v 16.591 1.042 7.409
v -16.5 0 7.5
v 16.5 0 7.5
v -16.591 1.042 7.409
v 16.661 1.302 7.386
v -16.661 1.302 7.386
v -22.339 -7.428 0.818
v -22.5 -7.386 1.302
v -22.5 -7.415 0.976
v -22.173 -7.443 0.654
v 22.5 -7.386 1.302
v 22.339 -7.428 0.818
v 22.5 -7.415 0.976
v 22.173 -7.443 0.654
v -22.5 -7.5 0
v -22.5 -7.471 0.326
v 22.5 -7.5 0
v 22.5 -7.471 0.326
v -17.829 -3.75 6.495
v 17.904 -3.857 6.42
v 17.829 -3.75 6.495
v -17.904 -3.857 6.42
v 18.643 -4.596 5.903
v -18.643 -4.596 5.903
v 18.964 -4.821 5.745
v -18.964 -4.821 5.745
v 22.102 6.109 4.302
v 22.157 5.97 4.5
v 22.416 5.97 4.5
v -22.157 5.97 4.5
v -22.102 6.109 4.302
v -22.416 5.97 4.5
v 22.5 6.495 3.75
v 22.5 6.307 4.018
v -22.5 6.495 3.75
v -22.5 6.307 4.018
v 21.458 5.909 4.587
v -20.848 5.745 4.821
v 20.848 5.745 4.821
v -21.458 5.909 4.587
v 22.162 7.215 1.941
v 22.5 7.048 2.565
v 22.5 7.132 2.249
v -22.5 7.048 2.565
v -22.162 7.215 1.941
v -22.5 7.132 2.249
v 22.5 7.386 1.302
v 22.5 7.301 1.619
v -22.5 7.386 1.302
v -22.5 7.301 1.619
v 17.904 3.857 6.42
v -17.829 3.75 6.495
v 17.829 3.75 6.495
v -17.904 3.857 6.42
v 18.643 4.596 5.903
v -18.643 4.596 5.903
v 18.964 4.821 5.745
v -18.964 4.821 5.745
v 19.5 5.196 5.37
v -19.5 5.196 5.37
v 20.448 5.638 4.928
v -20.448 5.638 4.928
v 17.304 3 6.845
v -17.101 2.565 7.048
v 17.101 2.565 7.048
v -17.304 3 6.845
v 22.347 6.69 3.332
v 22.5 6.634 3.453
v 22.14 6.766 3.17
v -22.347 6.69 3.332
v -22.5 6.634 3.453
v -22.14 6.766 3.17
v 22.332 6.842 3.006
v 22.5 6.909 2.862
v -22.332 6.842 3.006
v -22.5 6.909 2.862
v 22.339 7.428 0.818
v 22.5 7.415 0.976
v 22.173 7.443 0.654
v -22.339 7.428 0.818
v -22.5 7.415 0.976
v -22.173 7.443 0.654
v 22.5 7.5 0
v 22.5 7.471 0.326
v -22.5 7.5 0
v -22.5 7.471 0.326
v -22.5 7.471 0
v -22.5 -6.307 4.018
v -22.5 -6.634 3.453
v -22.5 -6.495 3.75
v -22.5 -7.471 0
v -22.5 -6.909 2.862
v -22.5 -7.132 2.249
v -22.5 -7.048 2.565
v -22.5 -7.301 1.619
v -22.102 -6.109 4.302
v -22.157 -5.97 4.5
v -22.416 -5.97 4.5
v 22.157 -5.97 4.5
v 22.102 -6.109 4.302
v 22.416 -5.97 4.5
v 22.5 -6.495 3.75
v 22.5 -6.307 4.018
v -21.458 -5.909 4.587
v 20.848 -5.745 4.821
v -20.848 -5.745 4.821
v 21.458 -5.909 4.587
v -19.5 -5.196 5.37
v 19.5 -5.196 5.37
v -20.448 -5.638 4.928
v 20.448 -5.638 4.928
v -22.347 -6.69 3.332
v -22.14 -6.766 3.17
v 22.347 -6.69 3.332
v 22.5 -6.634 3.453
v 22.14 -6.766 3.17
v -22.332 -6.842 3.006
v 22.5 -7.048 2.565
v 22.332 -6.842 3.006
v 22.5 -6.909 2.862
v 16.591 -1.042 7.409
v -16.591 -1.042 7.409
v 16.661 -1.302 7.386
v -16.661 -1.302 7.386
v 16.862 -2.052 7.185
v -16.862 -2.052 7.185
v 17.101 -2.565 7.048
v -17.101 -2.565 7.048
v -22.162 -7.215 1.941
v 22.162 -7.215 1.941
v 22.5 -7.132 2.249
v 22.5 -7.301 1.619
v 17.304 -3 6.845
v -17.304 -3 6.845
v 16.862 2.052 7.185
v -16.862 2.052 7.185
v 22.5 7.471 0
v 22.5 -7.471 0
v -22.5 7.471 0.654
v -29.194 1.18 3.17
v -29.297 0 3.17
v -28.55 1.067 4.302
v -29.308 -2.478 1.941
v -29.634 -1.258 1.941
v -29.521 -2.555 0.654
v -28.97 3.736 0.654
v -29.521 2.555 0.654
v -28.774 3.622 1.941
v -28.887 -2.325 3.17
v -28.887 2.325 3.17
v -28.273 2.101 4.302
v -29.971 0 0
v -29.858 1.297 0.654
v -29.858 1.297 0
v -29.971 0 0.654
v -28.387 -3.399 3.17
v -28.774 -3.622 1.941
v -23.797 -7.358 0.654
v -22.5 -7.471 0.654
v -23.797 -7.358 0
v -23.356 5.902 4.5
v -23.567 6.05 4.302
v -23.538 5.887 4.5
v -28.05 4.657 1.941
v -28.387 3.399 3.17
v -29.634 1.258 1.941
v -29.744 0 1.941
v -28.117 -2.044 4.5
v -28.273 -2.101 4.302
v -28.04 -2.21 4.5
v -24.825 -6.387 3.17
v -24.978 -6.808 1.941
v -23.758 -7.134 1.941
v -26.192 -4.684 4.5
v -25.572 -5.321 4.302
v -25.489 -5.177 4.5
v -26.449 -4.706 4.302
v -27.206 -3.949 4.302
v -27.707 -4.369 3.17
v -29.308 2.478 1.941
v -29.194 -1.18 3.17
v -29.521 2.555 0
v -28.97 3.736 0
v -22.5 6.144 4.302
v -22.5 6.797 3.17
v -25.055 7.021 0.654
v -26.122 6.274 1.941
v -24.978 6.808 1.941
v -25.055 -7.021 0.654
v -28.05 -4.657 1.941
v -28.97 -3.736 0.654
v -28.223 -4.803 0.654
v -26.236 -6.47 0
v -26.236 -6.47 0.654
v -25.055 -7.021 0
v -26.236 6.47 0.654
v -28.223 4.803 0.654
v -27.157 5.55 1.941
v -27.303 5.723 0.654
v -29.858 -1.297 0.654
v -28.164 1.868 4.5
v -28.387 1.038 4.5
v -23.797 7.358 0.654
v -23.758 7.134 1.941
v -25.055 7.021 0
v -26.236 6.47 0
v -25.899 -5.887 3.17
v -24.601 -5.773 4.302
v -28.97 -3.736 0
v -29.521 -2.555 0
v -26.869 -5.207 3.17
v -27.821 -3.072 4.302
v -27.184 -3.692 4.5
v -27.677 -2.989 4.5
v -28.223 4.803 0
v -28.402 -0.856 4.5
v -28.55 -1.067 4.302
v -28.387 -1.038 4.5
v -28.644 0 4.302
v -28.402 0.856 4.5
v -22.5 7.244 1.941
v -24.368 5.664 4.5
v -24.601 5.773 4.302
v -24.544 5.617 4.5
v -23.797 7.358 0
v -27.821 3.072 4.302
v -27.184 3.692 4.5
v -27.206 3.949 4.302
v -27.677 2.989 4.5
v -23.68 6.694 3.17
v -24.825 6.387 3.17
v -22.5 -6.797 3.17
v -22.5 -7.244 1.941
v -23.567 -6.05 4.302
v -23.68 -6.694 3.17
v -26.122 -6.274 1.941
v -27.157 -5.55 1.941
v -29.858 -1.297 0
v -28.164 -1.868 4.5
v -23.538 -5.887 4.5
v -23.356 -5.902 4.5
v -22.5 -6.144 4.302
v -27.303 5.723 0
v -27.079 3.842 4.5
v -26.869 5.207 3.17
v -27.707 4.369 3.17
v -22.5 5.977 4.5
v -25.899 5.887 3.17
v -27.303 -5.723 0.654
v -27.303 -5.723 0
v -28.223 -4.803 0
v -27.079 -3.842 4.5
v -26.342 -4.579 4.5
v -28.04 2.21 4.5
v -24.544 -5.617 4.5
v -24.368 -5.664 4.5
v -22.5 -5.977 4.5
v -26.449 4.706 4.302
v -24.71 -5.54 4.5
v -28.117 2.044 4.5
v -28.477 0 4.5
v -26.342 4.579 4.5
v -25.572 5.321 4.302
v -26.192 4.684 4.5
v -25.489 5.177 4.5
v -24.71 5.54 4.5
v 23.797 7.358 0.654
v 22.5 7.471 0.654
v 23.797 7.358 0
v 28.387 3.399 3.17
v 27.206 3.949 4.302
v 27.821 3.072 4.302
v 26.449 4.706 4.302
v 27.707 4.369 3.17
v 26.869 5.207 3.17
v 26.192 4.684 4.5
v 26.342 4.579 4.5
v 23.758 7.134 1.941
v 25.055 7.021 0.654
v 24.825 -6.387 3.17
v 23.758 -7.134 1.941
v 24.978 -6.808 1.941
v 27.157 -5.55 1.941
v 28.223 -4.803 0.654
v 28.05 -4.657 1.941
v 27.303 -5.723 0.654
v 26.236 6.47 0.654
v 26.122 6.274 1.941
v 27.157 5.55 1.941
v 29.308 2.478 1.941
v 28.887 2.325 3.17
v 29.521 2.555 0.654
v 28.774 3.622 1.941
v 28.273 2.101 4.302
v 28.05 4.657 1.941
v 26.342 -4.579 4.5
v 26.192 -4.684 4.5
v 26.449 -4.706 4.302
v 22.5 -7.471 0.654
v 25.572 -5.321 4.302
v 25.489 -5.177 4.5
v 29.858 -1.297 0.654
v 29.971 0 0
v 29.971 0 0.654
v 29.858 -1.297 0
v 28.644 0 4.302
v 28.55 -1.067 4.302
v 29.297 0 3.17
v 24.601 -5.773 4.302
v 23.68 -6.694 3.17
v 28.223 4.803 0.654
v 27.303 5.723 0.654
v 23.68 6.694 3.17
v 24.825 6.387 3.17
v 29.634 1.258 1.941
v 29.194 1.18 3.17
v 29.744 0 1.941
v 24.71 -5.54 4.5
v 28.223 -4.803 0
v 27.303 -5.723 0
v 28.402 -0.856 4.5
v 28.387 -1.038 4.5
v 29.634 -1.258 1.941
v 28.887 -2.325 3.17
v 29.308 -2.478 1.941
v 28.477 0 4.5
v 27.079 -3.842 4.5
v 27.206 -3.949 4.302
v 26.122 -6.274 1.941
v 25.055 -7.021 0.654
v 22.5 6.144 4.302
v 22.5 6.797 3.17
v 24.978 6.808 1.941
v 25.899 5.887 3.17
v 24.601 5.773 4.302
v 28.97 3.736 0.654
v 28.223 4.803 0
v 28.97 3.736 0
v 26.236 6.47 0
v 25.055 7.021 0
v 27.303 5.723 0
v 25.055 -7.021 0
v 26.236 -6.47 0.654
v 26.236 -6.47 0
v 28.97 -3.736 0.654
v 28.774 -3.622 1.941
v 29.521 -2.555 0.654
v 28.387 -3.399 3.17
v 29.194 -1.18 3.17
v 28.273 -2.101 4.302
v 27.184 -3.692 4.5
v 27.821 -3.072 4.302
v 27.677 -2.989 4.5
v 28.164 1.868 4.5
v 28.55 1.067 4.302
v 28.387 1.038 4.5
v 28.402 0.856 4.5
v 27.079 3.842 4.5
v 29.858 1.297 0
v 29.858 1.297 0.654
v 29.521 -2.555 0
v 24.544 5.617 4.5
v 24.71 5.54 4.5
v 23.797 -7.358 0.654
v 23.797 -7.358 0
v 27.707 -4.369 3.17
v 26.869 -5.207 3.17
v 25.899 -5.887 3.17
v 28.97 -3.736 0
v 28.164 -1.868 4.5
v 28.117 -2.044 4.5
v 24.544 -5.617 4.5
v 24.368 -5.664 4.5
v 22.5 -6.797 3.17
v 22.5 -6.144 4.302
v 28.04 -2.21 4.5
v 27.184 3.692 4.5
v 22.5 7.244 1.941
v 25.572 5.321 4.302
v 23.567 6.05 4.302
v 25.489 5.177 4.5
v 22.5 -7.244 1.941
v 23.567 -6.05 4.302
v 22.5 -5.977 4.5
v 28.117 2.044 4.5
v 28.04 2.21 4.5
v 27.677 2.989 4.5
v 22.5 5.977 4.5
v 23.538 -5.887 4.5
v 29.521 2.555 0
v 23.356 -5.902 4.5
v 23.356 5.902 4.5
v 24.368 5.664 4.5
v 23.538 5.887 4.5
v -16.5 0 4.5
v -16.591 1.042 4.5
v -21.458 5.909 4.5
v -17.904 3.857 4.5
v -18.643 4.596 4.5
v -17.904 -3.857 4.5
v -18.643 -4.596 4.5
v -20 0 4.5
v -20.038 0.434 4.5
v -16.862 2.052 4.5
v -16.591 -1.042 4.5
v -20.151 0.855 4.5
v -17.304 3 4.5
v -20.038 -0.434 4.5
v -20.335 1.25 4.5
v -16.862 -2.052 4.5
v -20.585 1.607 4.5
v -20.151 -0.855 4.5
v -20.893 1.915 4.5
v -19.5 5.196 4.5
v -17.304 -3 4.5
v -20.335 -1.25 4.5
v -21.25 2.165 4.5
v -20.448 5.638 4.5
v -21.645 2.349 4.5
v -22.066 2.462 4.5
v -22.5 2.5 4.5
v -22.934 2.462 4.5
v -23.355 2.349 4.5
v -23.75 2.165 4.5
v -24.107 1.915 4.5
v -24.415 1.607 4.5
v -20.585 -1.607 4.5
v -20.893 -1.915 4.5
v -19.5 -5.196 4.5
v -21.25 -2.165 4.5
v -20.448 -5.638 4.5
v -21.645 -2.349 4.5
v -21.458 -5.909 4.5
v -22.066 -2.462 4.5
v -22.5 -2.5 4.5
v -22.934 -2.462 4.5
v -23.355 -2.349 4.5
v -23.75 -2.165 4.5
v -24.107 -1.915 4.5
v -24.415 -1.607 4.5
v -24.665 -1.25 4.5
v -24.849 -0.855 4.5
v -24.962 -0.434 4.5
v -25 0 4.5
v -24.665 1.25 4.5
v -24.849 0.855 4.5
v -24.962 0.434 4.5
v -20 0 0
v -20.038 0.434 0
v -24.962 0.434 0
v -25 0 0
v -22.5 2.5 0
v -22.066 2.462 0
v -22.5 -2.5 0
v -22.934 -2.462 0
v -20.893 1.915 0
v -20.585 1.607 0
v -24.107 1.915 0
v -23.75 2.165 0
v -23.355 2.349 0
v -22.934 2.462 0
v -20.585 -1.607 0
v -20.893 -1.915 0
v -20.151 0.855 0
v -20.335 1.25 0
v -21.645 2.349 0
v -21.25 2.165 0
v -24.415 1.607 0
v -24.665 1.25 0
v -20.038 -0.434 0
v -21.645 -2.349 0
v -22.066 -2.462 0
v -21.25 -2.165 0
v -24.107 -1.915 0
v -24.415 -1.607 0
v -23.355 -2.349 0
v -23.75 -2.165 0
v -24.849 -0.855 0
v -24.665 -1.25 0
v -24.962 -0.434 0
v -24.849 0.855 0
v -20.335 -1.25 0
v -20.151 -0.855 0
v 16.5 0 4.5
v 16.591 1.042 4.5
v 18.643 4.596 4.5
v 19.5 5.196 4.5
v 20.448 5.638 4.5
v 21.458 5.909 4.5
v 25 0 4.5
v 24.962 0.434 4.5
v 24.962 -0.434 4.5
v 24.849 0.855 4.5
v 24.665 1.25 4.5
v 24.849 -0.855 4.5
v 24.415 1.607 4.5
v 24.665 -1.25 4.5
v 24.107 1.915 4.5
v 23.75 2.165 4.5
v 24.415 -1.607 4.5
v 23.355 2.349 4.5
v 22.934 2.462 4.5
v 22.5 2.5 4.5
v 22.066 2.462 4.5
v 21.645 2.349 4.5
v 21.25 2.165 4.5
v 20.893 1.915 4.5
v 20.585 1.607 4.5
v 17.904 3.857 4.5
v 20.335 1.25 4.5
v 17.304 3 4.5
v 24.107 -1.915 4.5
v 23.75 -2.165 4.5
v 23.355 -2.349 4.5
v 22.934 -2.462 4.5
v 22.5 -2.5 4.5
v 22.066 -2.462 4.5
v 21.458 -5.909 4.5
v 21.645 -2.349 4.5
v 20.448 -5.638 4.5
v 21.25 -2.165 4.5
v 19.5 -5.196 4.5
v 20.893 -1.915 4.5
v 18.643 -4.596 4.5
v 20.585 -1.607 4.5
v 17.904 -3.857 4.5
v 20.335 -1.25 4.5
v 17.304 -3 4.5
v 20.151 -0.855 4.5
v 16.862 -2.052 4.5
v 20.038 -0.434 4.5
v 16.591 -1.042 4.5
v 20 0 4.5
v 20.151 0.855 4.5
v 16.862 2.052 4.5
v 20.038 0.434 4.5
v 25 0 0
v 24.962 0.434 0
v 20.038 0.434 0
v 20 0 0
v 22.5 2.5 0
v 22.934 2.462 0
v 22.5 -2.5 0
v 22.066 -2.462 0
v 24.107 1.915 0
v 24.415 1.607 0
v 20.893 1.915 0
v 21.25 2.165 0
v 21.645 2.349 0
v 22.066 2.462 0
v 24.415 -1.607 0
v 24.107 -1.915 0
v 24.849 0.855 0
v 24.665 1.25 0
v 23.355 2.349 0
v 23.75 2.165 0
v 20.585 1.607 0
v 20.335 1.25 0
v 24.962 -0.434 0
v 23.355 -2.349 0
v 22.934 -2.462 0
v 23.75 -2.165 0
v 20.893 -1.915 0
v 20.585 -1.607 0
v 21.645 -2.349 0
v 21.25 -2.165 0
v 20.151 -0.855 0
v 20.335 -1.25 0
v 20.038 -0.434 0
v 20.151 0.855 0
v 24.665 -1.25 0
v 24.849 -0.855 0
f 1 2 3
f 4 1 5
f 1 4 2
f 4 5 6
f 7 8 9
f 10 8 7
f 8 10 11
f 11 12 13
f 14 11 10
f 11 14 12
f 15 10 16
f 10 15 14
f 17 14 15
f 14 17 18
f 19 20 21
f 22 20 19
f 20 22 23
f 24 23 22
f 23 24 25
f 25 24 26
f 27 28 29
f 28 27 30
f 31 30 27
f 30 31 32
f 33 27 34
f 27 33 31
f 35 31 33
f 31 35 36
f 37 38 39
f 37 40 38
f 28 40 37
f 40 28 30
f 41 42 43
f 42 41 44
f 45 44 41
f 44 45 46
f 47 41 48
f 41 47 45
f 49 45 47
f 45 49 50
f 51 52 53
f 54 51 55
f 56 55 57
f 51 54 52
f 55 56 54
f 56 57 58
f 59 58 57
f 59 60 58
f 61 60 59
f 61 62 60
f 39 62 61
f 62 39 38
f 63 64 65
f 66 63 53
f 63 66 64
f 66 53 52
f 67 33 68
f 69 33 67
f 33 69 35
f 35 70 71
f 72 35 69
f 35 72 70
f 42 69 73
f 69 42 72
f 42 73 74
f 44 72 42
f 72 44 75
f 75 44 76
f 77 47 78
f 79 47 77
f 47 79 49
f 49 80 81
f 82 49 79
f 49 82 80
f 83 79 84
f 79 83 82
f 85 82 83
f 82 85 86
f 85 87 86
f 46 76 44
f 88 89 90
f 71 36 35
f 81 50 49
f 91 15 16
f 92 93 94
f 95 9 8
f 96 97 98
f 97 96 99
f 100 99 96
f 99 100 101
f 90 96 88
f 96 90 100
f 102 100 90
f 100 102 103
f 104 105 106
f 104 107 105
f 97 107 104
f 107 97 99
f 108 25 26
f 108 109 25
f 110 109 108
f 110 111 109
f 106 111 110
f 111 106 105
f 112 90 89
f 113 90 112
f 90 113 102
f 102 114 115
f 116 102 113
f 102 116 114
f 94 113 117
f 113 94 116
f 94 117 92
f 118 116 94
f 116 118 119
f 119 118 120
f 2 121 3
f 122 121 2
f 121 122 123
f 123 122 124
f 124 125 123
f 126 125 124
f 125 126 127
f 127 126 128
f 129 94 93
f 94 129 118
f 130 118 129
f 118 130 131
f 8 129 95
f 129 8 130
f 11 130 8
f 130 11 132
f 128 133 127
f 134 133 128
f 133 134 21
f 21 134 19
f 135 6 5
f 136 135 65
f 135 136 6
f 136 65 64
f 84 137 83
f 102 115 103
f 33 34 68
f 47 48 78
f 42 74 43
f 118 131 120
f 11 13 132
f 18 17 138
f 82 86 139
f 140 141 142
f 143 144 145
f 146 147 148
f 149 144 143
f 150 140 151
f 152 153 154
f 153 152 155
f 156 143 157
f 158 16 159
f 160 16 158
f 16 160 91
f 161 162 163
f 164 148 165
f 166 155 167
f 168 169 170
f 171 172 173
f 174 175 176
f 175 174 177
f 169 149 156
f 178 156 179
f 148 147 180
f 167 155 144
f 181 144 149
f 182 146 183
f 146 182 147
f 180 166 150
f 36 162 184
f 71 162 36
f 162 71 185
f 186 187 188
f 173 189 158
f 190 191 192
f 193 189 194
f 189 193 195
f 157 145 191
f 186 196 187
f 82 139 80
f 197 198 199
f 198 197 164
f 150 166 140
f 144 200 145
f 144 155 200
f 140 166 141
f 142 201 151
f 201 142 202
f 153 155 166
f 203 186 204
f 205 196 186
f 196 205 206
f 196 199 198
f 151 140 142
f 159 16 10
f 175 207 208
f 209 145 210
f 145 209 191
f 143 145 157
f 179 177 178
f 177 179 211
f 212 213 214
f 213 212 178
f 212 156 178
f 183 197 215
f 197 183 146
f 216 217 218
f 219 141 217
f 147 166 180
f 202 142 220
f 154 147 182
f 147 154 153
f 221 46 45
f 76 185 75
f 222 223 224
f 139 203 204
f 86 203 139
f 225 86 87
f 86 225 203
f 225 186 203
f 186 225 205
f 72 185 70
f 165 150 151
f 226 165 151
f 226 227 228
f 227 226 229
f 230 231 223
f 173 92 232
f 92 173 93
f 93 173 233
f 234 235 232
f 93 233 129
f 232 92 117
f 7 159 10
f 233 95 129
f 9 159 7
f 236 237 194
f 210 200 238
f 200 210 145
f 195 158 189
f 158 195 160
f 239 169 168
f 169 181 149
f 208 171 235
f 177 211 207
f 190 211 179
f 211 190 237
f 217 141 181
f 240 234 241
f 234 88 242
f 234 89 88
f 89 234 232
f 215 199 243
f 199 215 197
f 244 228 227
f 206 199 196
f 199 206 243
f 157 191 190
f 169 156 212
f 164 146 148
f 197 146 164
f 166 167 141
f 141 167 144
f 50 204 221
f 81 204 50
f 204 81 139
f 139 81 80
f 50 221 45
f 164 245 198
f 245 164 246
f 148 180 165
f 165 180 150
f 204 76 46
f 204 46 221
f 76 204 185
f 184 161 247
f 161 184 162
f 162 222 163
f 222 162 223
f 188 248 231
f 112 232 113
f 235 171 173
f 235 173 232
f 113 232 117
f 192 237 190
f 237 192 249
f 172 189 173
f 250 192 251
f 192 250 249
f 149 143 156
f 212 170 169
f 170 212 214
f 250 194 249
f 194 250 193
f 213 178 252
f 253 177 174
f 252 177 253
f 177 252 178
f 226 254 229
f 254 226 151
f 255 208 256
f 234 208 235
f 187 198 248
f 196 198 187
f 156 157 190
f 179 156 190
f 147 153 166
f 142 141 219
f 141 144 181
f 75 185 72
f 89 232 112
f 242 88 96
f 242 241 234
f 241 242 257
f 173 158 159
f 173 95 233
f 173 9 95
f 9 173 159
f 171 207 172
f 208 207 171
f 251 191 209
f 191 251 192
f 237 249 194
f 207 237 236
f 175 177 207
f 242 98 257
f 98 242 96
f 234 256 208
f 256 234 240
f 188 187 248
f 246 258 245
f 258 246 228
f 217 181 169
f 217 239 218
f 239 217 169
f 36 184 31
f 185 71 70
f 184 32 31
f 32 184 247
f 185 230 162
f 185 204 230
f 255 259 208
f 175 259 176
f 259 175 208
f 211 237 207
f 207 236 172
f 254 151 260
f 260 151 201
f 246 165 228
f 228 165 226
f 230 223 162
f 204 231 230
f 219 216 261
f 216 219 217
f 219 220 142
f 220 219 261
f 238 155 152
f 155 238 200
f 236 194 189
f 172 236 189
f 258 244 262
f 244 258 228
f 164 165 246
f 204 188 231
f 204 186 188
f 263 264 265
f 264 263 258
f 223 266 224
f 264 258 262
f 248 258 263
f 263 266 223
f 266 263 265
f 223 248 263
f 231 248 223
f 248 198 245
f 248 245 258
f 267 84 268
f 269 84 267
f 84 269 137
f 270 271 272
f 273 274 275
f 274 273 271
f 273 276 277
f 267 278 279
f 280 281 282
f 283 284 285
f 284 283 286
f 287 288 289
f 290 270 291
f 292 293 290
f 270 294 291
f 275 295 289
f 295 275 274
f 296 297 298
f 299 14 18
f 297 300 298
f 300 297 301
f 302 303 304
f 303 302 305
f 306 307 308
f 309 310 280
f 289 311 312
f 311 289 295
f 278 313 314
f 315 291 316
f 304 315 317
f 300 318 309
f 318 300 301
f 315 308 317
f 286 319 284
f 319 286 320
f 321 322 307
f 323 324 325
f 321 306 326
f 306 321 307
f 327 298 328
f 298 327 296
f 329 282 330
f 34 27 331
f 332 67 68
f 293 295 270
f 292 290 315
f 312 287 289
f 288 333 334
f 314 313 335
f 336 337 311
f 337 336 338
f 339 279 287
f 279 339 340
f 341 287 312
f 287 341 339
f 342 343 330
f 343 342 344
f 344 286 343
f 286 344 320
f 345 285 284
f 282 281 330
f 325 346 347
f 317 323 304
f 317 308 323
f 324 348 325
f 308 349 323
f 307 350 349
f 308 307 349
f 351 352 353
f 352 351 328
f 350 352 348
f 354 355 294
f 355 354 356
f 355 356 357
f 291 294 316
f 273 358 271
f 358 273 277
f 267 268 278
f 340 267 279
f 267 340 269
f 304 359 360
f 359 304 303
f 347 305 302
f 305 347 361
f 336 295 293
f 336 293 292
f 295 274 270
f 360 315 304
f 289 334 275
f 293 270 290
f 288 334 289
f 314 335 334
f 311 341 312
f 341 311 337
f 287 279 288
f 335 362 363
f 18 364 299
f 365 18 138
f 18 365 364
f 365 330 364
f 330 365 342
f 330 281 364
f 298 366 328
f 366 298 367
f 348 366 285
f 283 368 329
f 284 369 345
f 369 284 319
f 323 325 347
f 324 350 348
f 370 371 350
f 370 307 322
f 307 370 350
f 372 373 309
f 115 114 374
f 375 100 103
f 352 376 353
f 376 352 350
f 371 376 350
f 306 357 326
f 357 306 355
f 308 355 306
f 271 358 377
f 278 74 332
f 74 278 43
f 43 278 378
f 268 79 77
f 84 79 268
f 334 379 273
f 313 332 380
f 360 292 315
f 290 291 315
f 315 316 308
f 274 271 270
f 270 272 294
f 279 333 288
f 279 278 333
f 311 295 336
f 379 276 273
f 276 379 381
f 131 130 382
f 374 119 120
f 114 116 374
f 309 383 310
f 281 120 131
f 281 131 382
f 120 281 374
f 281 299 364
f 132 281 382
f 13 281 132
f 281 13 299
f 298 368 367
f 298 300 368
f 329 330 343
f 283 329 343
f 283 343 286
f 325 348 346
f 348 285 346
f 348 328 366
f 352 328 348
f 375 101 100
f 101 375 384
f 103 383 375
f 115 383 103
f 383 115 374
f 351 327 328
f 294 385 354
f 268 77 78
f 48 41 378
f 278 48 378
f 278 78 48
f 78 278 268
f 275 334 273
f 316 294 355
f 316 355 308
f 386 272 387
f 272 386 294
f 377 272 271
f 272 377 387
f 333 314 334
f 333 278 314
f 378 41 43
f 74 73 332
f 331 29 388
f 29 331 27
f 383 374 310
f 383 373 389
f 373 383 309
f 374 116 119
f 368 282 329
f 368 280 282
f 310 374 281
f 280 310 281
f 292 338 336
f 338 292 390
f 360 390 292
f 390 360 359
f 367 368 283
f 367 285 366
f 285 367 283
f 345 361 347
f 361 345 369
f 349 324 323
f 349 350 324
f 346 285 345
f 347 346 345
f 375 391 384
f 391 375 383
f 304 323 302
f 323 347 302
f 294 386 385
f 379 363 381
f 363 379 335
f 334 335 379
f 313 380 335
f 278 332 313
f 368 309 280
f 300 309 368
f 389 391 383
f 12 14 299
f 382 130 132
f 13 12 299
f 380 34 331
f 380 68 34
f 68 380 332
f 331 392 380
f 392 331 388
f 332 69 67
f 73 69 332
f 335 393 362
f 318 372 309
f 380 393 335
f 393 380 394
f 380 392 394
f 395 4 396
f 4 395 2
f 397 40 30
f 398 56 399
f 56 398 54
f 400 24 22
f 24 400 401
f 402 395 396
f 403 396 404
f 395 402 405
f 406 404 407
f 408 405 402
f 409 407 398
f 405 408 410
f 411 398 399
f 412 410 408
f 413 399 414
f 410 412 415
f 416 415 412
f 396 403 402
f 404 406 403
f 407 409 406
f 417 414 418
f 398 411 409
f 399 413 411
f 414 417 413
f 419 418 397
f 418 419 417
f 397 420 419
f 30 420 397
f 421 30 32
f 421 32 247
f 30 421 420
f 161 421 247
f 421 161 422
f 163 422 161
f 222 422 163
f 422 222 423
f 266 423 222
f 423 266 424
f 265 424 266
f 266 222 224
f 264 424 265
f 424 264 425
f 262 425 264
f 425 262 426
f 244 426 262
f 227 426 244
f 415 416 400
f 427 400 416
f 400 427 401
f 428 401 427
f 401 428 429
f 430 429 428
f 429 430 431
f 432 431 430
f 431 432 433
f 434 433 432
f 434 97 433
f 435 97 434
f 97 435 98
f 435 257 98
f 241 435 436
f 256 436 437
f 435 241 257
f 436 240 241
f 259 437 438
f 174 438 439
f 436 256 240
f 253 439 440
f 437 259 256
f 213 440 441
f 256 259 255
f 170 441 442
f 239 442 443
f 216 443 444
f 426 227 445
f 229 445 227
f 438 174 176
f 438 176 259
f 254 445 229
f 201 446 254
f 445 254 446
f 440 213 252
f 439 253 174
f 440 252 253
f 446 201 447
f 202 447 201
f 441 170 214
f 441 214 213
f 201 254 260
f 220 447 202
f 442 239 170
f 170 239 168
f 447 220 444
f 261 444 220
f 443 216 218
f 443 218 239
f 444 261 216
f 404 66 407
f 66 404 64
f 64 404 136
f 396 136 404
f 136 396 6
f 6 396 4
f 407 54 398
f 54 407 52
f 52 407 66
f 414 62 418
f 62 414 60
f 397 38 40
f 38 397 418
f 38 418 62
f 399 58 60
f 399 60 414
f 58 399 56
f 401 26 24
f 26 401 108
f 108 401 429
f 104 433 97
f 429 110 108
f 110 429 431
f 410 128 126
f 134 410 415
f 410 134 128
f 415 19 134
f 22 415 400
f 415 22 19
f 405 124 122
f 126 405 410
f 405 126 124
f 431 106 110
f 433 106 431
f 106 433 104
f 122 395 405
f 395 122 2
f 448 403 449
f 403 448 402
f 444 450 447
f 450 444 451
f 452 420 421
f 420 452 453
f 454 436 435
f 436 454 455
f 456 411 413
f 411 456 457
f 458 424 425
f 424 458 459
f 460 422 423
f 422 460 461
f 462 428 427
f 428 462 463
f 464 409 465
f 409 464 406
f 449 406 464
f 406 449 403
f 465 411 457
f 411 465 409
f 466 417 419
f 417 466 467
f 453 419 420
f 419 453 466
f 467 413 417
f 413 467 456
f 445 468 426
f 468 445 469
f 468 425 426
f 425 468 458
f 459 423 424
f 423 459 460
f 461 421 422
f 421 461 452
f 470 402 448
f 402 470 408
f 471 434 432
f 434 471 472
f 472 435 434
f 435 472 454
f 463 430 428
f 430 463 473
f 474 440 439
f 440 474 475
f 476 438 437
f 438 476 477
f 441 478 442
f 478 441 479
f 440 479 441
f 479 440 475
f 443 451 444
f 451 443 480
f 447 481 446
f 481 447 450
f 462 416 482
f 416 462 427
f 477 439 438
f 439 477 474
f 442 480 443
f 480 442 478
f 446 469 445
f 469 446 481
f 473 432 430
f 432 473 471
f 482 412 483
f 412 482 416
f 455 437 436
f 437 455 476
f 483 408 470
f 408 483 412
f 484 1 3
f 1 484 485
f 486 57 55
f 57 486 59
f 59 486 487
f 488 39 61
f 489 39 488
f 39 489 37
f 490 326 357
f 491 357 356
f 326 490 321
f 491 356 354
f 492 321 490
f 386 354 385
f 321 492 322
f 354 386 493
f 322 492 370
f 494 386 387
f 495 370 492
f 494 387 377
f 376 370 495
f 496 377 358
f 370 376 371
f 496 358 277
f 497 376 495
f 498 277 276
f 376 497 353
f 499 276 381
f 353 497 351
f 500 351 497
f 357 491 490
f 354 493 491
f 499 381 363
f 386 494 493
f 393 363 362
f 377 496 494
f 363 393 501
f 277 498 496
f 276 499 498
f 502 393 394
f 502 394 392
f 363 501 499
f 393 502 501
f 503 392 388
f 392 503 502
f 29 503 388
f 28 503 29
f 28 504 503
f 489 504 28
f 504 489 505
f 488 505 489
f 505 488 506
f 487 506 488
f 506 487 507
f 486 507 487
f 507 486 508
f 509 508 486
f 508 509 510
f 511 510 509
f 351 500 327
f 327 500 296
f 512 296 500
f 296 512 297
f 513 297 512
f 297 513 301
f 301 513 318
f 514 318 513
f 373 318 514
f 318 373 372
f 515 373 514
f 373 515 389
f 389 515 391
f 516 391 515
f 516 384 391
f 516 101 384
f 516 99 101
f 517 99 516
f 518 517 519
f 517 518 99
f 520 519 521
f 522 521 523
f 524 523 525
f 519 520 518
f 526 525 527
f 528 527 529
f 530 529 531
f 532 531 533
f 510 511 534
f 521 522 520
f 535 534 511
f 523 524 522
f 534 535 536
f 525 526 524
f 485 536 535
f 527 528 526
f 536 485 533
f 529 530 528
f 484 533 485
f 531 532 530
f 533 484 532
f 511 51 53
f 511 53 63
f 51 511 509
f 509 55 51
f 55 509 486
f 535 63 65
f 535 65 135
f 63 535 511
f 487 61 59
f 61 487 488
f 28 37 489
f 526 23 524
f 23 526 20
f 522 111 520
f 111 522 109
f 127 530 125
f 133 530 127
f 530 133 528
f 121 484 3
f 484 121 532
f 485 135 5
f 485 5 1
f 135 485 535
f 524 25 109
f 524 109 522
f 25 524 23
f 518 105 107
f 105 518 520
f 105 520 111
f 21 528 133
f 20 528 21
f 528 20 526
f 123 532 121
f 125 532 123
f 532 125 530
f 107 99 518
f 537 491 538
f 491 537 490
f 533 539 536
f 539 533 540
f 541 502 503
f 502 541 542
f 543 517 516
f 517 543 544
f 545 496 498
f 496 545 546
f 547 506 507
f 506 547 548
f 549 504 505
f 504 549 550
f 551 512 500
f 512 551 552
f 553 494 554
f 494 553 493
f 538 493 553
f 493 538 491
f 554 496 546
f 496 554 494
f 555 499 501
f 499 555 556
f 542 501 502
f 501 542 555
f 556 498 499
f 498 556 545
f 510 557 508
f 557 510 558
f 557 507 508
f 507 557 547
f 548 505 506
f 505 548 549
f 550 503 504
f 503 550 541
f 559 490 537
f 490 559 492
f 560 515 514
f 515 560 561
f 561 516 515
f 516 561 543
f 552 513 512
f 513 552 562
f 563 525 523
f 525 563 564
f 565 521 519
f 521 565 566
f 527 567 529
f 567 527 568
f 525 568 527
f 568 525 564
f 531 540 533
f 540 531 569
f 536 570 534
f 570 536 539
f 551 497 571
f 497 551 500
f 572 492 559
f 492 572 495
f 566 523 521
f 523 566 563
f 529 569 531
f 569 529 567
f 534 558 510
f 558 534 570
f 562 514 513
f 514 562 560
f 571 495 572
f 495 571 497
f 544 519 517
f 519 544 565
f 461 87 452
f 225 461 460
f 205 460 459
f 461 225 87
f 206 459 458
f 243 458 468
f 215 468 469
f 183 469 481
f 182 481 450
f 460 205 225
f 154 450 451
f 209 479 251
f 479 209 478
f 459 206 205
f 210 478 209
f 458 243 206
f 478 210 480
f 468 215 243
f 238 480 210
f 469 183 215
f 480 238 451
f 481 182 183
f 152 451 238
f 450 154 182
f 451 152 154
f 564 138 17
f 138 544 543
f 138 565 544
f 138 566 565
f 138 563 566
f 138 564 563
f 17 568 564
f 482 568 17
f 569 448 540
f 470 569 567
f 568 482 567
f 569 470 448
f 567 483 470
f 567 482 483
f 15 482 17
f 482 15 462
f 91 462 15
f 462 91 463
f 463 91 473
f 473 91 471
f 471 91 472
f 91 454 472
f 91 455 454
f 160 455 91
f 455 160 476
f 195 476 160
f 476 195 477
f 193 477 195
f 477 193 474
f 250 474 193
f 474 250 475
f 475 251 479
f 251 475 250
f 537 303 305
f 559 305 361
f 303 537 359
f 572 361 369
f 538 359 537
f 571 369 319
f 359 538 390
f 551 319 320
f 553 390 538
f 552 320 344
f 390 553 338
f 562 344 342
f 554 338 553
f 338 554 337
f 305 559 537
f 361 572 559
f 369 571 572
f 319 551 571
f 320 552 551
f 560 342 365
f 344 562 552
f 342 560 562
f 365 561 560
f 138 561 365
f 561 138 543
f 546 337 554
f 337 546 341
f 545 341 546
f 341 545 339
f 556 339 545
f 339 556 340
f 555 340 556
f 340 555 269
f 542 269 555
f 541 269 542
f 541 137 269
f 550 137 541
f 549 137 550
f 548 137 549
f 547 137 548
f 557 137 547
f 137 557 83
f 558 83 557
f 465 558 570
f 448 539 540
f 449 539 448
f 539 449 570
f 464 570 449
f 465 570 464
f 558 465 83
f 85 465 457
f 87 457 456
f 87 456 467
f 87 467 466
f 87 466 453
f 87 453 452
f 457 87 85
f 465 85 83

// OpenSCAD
pin_width = 15;
pin_length = 60;
hole_diameter = 5;
hole_countersink_diameter = 12;
hole_countersink_depth = 3;

sphere_offset_x = ((pin_length - pin_width)  / 2);// + pin_width / 2);

module screwHole() { cylinder(h = pin_width, d = hole_diameter, center = true, $fn = 36);}; 

module screwCountersink() { cylinder(h = hole_countersink_depth, d = hole_countersink_diameter, center = true, $fn = 36 );}; 


difference()
{
    union()
    {
       translate ([-sphere_offset_x, 0,0])
        {
            rotate([0,90,0])
            {
                cylinder((pin_length - pin_width), d = pin_width, true, $fn = 36);
            }
        }
        
        translate([-sphere_offset_x ,0,0])
        {
            sphere(d = pin_width, $fn = 36);
        }
        
        translate([sphere_offset_x ,0,0])
        {
            sphere(d = pin_width, $fn = 36);
        }
    };    
    
    {
        translate([-sphere_offset_x ,0,0])
        {
            translate([0,0, pin_width / 2 - (hole_countersink_depth / 2) ])
            {
                screwCountersink();
            }

           screwHole(); 
        }
        
        translate([sphere_offset_x ,0,0])
        {
            translate([0,0, pin_width / 2 - (hole_countersink_depth / 2) ])
            {
                screwCountersink();
            }
           screwHole(); 
        }

        
        translate([0, 0, -(pin_width / 2)])
        {
            cube([(pin_length), pin_width, pin_width], true);
        };
    }
}
    
